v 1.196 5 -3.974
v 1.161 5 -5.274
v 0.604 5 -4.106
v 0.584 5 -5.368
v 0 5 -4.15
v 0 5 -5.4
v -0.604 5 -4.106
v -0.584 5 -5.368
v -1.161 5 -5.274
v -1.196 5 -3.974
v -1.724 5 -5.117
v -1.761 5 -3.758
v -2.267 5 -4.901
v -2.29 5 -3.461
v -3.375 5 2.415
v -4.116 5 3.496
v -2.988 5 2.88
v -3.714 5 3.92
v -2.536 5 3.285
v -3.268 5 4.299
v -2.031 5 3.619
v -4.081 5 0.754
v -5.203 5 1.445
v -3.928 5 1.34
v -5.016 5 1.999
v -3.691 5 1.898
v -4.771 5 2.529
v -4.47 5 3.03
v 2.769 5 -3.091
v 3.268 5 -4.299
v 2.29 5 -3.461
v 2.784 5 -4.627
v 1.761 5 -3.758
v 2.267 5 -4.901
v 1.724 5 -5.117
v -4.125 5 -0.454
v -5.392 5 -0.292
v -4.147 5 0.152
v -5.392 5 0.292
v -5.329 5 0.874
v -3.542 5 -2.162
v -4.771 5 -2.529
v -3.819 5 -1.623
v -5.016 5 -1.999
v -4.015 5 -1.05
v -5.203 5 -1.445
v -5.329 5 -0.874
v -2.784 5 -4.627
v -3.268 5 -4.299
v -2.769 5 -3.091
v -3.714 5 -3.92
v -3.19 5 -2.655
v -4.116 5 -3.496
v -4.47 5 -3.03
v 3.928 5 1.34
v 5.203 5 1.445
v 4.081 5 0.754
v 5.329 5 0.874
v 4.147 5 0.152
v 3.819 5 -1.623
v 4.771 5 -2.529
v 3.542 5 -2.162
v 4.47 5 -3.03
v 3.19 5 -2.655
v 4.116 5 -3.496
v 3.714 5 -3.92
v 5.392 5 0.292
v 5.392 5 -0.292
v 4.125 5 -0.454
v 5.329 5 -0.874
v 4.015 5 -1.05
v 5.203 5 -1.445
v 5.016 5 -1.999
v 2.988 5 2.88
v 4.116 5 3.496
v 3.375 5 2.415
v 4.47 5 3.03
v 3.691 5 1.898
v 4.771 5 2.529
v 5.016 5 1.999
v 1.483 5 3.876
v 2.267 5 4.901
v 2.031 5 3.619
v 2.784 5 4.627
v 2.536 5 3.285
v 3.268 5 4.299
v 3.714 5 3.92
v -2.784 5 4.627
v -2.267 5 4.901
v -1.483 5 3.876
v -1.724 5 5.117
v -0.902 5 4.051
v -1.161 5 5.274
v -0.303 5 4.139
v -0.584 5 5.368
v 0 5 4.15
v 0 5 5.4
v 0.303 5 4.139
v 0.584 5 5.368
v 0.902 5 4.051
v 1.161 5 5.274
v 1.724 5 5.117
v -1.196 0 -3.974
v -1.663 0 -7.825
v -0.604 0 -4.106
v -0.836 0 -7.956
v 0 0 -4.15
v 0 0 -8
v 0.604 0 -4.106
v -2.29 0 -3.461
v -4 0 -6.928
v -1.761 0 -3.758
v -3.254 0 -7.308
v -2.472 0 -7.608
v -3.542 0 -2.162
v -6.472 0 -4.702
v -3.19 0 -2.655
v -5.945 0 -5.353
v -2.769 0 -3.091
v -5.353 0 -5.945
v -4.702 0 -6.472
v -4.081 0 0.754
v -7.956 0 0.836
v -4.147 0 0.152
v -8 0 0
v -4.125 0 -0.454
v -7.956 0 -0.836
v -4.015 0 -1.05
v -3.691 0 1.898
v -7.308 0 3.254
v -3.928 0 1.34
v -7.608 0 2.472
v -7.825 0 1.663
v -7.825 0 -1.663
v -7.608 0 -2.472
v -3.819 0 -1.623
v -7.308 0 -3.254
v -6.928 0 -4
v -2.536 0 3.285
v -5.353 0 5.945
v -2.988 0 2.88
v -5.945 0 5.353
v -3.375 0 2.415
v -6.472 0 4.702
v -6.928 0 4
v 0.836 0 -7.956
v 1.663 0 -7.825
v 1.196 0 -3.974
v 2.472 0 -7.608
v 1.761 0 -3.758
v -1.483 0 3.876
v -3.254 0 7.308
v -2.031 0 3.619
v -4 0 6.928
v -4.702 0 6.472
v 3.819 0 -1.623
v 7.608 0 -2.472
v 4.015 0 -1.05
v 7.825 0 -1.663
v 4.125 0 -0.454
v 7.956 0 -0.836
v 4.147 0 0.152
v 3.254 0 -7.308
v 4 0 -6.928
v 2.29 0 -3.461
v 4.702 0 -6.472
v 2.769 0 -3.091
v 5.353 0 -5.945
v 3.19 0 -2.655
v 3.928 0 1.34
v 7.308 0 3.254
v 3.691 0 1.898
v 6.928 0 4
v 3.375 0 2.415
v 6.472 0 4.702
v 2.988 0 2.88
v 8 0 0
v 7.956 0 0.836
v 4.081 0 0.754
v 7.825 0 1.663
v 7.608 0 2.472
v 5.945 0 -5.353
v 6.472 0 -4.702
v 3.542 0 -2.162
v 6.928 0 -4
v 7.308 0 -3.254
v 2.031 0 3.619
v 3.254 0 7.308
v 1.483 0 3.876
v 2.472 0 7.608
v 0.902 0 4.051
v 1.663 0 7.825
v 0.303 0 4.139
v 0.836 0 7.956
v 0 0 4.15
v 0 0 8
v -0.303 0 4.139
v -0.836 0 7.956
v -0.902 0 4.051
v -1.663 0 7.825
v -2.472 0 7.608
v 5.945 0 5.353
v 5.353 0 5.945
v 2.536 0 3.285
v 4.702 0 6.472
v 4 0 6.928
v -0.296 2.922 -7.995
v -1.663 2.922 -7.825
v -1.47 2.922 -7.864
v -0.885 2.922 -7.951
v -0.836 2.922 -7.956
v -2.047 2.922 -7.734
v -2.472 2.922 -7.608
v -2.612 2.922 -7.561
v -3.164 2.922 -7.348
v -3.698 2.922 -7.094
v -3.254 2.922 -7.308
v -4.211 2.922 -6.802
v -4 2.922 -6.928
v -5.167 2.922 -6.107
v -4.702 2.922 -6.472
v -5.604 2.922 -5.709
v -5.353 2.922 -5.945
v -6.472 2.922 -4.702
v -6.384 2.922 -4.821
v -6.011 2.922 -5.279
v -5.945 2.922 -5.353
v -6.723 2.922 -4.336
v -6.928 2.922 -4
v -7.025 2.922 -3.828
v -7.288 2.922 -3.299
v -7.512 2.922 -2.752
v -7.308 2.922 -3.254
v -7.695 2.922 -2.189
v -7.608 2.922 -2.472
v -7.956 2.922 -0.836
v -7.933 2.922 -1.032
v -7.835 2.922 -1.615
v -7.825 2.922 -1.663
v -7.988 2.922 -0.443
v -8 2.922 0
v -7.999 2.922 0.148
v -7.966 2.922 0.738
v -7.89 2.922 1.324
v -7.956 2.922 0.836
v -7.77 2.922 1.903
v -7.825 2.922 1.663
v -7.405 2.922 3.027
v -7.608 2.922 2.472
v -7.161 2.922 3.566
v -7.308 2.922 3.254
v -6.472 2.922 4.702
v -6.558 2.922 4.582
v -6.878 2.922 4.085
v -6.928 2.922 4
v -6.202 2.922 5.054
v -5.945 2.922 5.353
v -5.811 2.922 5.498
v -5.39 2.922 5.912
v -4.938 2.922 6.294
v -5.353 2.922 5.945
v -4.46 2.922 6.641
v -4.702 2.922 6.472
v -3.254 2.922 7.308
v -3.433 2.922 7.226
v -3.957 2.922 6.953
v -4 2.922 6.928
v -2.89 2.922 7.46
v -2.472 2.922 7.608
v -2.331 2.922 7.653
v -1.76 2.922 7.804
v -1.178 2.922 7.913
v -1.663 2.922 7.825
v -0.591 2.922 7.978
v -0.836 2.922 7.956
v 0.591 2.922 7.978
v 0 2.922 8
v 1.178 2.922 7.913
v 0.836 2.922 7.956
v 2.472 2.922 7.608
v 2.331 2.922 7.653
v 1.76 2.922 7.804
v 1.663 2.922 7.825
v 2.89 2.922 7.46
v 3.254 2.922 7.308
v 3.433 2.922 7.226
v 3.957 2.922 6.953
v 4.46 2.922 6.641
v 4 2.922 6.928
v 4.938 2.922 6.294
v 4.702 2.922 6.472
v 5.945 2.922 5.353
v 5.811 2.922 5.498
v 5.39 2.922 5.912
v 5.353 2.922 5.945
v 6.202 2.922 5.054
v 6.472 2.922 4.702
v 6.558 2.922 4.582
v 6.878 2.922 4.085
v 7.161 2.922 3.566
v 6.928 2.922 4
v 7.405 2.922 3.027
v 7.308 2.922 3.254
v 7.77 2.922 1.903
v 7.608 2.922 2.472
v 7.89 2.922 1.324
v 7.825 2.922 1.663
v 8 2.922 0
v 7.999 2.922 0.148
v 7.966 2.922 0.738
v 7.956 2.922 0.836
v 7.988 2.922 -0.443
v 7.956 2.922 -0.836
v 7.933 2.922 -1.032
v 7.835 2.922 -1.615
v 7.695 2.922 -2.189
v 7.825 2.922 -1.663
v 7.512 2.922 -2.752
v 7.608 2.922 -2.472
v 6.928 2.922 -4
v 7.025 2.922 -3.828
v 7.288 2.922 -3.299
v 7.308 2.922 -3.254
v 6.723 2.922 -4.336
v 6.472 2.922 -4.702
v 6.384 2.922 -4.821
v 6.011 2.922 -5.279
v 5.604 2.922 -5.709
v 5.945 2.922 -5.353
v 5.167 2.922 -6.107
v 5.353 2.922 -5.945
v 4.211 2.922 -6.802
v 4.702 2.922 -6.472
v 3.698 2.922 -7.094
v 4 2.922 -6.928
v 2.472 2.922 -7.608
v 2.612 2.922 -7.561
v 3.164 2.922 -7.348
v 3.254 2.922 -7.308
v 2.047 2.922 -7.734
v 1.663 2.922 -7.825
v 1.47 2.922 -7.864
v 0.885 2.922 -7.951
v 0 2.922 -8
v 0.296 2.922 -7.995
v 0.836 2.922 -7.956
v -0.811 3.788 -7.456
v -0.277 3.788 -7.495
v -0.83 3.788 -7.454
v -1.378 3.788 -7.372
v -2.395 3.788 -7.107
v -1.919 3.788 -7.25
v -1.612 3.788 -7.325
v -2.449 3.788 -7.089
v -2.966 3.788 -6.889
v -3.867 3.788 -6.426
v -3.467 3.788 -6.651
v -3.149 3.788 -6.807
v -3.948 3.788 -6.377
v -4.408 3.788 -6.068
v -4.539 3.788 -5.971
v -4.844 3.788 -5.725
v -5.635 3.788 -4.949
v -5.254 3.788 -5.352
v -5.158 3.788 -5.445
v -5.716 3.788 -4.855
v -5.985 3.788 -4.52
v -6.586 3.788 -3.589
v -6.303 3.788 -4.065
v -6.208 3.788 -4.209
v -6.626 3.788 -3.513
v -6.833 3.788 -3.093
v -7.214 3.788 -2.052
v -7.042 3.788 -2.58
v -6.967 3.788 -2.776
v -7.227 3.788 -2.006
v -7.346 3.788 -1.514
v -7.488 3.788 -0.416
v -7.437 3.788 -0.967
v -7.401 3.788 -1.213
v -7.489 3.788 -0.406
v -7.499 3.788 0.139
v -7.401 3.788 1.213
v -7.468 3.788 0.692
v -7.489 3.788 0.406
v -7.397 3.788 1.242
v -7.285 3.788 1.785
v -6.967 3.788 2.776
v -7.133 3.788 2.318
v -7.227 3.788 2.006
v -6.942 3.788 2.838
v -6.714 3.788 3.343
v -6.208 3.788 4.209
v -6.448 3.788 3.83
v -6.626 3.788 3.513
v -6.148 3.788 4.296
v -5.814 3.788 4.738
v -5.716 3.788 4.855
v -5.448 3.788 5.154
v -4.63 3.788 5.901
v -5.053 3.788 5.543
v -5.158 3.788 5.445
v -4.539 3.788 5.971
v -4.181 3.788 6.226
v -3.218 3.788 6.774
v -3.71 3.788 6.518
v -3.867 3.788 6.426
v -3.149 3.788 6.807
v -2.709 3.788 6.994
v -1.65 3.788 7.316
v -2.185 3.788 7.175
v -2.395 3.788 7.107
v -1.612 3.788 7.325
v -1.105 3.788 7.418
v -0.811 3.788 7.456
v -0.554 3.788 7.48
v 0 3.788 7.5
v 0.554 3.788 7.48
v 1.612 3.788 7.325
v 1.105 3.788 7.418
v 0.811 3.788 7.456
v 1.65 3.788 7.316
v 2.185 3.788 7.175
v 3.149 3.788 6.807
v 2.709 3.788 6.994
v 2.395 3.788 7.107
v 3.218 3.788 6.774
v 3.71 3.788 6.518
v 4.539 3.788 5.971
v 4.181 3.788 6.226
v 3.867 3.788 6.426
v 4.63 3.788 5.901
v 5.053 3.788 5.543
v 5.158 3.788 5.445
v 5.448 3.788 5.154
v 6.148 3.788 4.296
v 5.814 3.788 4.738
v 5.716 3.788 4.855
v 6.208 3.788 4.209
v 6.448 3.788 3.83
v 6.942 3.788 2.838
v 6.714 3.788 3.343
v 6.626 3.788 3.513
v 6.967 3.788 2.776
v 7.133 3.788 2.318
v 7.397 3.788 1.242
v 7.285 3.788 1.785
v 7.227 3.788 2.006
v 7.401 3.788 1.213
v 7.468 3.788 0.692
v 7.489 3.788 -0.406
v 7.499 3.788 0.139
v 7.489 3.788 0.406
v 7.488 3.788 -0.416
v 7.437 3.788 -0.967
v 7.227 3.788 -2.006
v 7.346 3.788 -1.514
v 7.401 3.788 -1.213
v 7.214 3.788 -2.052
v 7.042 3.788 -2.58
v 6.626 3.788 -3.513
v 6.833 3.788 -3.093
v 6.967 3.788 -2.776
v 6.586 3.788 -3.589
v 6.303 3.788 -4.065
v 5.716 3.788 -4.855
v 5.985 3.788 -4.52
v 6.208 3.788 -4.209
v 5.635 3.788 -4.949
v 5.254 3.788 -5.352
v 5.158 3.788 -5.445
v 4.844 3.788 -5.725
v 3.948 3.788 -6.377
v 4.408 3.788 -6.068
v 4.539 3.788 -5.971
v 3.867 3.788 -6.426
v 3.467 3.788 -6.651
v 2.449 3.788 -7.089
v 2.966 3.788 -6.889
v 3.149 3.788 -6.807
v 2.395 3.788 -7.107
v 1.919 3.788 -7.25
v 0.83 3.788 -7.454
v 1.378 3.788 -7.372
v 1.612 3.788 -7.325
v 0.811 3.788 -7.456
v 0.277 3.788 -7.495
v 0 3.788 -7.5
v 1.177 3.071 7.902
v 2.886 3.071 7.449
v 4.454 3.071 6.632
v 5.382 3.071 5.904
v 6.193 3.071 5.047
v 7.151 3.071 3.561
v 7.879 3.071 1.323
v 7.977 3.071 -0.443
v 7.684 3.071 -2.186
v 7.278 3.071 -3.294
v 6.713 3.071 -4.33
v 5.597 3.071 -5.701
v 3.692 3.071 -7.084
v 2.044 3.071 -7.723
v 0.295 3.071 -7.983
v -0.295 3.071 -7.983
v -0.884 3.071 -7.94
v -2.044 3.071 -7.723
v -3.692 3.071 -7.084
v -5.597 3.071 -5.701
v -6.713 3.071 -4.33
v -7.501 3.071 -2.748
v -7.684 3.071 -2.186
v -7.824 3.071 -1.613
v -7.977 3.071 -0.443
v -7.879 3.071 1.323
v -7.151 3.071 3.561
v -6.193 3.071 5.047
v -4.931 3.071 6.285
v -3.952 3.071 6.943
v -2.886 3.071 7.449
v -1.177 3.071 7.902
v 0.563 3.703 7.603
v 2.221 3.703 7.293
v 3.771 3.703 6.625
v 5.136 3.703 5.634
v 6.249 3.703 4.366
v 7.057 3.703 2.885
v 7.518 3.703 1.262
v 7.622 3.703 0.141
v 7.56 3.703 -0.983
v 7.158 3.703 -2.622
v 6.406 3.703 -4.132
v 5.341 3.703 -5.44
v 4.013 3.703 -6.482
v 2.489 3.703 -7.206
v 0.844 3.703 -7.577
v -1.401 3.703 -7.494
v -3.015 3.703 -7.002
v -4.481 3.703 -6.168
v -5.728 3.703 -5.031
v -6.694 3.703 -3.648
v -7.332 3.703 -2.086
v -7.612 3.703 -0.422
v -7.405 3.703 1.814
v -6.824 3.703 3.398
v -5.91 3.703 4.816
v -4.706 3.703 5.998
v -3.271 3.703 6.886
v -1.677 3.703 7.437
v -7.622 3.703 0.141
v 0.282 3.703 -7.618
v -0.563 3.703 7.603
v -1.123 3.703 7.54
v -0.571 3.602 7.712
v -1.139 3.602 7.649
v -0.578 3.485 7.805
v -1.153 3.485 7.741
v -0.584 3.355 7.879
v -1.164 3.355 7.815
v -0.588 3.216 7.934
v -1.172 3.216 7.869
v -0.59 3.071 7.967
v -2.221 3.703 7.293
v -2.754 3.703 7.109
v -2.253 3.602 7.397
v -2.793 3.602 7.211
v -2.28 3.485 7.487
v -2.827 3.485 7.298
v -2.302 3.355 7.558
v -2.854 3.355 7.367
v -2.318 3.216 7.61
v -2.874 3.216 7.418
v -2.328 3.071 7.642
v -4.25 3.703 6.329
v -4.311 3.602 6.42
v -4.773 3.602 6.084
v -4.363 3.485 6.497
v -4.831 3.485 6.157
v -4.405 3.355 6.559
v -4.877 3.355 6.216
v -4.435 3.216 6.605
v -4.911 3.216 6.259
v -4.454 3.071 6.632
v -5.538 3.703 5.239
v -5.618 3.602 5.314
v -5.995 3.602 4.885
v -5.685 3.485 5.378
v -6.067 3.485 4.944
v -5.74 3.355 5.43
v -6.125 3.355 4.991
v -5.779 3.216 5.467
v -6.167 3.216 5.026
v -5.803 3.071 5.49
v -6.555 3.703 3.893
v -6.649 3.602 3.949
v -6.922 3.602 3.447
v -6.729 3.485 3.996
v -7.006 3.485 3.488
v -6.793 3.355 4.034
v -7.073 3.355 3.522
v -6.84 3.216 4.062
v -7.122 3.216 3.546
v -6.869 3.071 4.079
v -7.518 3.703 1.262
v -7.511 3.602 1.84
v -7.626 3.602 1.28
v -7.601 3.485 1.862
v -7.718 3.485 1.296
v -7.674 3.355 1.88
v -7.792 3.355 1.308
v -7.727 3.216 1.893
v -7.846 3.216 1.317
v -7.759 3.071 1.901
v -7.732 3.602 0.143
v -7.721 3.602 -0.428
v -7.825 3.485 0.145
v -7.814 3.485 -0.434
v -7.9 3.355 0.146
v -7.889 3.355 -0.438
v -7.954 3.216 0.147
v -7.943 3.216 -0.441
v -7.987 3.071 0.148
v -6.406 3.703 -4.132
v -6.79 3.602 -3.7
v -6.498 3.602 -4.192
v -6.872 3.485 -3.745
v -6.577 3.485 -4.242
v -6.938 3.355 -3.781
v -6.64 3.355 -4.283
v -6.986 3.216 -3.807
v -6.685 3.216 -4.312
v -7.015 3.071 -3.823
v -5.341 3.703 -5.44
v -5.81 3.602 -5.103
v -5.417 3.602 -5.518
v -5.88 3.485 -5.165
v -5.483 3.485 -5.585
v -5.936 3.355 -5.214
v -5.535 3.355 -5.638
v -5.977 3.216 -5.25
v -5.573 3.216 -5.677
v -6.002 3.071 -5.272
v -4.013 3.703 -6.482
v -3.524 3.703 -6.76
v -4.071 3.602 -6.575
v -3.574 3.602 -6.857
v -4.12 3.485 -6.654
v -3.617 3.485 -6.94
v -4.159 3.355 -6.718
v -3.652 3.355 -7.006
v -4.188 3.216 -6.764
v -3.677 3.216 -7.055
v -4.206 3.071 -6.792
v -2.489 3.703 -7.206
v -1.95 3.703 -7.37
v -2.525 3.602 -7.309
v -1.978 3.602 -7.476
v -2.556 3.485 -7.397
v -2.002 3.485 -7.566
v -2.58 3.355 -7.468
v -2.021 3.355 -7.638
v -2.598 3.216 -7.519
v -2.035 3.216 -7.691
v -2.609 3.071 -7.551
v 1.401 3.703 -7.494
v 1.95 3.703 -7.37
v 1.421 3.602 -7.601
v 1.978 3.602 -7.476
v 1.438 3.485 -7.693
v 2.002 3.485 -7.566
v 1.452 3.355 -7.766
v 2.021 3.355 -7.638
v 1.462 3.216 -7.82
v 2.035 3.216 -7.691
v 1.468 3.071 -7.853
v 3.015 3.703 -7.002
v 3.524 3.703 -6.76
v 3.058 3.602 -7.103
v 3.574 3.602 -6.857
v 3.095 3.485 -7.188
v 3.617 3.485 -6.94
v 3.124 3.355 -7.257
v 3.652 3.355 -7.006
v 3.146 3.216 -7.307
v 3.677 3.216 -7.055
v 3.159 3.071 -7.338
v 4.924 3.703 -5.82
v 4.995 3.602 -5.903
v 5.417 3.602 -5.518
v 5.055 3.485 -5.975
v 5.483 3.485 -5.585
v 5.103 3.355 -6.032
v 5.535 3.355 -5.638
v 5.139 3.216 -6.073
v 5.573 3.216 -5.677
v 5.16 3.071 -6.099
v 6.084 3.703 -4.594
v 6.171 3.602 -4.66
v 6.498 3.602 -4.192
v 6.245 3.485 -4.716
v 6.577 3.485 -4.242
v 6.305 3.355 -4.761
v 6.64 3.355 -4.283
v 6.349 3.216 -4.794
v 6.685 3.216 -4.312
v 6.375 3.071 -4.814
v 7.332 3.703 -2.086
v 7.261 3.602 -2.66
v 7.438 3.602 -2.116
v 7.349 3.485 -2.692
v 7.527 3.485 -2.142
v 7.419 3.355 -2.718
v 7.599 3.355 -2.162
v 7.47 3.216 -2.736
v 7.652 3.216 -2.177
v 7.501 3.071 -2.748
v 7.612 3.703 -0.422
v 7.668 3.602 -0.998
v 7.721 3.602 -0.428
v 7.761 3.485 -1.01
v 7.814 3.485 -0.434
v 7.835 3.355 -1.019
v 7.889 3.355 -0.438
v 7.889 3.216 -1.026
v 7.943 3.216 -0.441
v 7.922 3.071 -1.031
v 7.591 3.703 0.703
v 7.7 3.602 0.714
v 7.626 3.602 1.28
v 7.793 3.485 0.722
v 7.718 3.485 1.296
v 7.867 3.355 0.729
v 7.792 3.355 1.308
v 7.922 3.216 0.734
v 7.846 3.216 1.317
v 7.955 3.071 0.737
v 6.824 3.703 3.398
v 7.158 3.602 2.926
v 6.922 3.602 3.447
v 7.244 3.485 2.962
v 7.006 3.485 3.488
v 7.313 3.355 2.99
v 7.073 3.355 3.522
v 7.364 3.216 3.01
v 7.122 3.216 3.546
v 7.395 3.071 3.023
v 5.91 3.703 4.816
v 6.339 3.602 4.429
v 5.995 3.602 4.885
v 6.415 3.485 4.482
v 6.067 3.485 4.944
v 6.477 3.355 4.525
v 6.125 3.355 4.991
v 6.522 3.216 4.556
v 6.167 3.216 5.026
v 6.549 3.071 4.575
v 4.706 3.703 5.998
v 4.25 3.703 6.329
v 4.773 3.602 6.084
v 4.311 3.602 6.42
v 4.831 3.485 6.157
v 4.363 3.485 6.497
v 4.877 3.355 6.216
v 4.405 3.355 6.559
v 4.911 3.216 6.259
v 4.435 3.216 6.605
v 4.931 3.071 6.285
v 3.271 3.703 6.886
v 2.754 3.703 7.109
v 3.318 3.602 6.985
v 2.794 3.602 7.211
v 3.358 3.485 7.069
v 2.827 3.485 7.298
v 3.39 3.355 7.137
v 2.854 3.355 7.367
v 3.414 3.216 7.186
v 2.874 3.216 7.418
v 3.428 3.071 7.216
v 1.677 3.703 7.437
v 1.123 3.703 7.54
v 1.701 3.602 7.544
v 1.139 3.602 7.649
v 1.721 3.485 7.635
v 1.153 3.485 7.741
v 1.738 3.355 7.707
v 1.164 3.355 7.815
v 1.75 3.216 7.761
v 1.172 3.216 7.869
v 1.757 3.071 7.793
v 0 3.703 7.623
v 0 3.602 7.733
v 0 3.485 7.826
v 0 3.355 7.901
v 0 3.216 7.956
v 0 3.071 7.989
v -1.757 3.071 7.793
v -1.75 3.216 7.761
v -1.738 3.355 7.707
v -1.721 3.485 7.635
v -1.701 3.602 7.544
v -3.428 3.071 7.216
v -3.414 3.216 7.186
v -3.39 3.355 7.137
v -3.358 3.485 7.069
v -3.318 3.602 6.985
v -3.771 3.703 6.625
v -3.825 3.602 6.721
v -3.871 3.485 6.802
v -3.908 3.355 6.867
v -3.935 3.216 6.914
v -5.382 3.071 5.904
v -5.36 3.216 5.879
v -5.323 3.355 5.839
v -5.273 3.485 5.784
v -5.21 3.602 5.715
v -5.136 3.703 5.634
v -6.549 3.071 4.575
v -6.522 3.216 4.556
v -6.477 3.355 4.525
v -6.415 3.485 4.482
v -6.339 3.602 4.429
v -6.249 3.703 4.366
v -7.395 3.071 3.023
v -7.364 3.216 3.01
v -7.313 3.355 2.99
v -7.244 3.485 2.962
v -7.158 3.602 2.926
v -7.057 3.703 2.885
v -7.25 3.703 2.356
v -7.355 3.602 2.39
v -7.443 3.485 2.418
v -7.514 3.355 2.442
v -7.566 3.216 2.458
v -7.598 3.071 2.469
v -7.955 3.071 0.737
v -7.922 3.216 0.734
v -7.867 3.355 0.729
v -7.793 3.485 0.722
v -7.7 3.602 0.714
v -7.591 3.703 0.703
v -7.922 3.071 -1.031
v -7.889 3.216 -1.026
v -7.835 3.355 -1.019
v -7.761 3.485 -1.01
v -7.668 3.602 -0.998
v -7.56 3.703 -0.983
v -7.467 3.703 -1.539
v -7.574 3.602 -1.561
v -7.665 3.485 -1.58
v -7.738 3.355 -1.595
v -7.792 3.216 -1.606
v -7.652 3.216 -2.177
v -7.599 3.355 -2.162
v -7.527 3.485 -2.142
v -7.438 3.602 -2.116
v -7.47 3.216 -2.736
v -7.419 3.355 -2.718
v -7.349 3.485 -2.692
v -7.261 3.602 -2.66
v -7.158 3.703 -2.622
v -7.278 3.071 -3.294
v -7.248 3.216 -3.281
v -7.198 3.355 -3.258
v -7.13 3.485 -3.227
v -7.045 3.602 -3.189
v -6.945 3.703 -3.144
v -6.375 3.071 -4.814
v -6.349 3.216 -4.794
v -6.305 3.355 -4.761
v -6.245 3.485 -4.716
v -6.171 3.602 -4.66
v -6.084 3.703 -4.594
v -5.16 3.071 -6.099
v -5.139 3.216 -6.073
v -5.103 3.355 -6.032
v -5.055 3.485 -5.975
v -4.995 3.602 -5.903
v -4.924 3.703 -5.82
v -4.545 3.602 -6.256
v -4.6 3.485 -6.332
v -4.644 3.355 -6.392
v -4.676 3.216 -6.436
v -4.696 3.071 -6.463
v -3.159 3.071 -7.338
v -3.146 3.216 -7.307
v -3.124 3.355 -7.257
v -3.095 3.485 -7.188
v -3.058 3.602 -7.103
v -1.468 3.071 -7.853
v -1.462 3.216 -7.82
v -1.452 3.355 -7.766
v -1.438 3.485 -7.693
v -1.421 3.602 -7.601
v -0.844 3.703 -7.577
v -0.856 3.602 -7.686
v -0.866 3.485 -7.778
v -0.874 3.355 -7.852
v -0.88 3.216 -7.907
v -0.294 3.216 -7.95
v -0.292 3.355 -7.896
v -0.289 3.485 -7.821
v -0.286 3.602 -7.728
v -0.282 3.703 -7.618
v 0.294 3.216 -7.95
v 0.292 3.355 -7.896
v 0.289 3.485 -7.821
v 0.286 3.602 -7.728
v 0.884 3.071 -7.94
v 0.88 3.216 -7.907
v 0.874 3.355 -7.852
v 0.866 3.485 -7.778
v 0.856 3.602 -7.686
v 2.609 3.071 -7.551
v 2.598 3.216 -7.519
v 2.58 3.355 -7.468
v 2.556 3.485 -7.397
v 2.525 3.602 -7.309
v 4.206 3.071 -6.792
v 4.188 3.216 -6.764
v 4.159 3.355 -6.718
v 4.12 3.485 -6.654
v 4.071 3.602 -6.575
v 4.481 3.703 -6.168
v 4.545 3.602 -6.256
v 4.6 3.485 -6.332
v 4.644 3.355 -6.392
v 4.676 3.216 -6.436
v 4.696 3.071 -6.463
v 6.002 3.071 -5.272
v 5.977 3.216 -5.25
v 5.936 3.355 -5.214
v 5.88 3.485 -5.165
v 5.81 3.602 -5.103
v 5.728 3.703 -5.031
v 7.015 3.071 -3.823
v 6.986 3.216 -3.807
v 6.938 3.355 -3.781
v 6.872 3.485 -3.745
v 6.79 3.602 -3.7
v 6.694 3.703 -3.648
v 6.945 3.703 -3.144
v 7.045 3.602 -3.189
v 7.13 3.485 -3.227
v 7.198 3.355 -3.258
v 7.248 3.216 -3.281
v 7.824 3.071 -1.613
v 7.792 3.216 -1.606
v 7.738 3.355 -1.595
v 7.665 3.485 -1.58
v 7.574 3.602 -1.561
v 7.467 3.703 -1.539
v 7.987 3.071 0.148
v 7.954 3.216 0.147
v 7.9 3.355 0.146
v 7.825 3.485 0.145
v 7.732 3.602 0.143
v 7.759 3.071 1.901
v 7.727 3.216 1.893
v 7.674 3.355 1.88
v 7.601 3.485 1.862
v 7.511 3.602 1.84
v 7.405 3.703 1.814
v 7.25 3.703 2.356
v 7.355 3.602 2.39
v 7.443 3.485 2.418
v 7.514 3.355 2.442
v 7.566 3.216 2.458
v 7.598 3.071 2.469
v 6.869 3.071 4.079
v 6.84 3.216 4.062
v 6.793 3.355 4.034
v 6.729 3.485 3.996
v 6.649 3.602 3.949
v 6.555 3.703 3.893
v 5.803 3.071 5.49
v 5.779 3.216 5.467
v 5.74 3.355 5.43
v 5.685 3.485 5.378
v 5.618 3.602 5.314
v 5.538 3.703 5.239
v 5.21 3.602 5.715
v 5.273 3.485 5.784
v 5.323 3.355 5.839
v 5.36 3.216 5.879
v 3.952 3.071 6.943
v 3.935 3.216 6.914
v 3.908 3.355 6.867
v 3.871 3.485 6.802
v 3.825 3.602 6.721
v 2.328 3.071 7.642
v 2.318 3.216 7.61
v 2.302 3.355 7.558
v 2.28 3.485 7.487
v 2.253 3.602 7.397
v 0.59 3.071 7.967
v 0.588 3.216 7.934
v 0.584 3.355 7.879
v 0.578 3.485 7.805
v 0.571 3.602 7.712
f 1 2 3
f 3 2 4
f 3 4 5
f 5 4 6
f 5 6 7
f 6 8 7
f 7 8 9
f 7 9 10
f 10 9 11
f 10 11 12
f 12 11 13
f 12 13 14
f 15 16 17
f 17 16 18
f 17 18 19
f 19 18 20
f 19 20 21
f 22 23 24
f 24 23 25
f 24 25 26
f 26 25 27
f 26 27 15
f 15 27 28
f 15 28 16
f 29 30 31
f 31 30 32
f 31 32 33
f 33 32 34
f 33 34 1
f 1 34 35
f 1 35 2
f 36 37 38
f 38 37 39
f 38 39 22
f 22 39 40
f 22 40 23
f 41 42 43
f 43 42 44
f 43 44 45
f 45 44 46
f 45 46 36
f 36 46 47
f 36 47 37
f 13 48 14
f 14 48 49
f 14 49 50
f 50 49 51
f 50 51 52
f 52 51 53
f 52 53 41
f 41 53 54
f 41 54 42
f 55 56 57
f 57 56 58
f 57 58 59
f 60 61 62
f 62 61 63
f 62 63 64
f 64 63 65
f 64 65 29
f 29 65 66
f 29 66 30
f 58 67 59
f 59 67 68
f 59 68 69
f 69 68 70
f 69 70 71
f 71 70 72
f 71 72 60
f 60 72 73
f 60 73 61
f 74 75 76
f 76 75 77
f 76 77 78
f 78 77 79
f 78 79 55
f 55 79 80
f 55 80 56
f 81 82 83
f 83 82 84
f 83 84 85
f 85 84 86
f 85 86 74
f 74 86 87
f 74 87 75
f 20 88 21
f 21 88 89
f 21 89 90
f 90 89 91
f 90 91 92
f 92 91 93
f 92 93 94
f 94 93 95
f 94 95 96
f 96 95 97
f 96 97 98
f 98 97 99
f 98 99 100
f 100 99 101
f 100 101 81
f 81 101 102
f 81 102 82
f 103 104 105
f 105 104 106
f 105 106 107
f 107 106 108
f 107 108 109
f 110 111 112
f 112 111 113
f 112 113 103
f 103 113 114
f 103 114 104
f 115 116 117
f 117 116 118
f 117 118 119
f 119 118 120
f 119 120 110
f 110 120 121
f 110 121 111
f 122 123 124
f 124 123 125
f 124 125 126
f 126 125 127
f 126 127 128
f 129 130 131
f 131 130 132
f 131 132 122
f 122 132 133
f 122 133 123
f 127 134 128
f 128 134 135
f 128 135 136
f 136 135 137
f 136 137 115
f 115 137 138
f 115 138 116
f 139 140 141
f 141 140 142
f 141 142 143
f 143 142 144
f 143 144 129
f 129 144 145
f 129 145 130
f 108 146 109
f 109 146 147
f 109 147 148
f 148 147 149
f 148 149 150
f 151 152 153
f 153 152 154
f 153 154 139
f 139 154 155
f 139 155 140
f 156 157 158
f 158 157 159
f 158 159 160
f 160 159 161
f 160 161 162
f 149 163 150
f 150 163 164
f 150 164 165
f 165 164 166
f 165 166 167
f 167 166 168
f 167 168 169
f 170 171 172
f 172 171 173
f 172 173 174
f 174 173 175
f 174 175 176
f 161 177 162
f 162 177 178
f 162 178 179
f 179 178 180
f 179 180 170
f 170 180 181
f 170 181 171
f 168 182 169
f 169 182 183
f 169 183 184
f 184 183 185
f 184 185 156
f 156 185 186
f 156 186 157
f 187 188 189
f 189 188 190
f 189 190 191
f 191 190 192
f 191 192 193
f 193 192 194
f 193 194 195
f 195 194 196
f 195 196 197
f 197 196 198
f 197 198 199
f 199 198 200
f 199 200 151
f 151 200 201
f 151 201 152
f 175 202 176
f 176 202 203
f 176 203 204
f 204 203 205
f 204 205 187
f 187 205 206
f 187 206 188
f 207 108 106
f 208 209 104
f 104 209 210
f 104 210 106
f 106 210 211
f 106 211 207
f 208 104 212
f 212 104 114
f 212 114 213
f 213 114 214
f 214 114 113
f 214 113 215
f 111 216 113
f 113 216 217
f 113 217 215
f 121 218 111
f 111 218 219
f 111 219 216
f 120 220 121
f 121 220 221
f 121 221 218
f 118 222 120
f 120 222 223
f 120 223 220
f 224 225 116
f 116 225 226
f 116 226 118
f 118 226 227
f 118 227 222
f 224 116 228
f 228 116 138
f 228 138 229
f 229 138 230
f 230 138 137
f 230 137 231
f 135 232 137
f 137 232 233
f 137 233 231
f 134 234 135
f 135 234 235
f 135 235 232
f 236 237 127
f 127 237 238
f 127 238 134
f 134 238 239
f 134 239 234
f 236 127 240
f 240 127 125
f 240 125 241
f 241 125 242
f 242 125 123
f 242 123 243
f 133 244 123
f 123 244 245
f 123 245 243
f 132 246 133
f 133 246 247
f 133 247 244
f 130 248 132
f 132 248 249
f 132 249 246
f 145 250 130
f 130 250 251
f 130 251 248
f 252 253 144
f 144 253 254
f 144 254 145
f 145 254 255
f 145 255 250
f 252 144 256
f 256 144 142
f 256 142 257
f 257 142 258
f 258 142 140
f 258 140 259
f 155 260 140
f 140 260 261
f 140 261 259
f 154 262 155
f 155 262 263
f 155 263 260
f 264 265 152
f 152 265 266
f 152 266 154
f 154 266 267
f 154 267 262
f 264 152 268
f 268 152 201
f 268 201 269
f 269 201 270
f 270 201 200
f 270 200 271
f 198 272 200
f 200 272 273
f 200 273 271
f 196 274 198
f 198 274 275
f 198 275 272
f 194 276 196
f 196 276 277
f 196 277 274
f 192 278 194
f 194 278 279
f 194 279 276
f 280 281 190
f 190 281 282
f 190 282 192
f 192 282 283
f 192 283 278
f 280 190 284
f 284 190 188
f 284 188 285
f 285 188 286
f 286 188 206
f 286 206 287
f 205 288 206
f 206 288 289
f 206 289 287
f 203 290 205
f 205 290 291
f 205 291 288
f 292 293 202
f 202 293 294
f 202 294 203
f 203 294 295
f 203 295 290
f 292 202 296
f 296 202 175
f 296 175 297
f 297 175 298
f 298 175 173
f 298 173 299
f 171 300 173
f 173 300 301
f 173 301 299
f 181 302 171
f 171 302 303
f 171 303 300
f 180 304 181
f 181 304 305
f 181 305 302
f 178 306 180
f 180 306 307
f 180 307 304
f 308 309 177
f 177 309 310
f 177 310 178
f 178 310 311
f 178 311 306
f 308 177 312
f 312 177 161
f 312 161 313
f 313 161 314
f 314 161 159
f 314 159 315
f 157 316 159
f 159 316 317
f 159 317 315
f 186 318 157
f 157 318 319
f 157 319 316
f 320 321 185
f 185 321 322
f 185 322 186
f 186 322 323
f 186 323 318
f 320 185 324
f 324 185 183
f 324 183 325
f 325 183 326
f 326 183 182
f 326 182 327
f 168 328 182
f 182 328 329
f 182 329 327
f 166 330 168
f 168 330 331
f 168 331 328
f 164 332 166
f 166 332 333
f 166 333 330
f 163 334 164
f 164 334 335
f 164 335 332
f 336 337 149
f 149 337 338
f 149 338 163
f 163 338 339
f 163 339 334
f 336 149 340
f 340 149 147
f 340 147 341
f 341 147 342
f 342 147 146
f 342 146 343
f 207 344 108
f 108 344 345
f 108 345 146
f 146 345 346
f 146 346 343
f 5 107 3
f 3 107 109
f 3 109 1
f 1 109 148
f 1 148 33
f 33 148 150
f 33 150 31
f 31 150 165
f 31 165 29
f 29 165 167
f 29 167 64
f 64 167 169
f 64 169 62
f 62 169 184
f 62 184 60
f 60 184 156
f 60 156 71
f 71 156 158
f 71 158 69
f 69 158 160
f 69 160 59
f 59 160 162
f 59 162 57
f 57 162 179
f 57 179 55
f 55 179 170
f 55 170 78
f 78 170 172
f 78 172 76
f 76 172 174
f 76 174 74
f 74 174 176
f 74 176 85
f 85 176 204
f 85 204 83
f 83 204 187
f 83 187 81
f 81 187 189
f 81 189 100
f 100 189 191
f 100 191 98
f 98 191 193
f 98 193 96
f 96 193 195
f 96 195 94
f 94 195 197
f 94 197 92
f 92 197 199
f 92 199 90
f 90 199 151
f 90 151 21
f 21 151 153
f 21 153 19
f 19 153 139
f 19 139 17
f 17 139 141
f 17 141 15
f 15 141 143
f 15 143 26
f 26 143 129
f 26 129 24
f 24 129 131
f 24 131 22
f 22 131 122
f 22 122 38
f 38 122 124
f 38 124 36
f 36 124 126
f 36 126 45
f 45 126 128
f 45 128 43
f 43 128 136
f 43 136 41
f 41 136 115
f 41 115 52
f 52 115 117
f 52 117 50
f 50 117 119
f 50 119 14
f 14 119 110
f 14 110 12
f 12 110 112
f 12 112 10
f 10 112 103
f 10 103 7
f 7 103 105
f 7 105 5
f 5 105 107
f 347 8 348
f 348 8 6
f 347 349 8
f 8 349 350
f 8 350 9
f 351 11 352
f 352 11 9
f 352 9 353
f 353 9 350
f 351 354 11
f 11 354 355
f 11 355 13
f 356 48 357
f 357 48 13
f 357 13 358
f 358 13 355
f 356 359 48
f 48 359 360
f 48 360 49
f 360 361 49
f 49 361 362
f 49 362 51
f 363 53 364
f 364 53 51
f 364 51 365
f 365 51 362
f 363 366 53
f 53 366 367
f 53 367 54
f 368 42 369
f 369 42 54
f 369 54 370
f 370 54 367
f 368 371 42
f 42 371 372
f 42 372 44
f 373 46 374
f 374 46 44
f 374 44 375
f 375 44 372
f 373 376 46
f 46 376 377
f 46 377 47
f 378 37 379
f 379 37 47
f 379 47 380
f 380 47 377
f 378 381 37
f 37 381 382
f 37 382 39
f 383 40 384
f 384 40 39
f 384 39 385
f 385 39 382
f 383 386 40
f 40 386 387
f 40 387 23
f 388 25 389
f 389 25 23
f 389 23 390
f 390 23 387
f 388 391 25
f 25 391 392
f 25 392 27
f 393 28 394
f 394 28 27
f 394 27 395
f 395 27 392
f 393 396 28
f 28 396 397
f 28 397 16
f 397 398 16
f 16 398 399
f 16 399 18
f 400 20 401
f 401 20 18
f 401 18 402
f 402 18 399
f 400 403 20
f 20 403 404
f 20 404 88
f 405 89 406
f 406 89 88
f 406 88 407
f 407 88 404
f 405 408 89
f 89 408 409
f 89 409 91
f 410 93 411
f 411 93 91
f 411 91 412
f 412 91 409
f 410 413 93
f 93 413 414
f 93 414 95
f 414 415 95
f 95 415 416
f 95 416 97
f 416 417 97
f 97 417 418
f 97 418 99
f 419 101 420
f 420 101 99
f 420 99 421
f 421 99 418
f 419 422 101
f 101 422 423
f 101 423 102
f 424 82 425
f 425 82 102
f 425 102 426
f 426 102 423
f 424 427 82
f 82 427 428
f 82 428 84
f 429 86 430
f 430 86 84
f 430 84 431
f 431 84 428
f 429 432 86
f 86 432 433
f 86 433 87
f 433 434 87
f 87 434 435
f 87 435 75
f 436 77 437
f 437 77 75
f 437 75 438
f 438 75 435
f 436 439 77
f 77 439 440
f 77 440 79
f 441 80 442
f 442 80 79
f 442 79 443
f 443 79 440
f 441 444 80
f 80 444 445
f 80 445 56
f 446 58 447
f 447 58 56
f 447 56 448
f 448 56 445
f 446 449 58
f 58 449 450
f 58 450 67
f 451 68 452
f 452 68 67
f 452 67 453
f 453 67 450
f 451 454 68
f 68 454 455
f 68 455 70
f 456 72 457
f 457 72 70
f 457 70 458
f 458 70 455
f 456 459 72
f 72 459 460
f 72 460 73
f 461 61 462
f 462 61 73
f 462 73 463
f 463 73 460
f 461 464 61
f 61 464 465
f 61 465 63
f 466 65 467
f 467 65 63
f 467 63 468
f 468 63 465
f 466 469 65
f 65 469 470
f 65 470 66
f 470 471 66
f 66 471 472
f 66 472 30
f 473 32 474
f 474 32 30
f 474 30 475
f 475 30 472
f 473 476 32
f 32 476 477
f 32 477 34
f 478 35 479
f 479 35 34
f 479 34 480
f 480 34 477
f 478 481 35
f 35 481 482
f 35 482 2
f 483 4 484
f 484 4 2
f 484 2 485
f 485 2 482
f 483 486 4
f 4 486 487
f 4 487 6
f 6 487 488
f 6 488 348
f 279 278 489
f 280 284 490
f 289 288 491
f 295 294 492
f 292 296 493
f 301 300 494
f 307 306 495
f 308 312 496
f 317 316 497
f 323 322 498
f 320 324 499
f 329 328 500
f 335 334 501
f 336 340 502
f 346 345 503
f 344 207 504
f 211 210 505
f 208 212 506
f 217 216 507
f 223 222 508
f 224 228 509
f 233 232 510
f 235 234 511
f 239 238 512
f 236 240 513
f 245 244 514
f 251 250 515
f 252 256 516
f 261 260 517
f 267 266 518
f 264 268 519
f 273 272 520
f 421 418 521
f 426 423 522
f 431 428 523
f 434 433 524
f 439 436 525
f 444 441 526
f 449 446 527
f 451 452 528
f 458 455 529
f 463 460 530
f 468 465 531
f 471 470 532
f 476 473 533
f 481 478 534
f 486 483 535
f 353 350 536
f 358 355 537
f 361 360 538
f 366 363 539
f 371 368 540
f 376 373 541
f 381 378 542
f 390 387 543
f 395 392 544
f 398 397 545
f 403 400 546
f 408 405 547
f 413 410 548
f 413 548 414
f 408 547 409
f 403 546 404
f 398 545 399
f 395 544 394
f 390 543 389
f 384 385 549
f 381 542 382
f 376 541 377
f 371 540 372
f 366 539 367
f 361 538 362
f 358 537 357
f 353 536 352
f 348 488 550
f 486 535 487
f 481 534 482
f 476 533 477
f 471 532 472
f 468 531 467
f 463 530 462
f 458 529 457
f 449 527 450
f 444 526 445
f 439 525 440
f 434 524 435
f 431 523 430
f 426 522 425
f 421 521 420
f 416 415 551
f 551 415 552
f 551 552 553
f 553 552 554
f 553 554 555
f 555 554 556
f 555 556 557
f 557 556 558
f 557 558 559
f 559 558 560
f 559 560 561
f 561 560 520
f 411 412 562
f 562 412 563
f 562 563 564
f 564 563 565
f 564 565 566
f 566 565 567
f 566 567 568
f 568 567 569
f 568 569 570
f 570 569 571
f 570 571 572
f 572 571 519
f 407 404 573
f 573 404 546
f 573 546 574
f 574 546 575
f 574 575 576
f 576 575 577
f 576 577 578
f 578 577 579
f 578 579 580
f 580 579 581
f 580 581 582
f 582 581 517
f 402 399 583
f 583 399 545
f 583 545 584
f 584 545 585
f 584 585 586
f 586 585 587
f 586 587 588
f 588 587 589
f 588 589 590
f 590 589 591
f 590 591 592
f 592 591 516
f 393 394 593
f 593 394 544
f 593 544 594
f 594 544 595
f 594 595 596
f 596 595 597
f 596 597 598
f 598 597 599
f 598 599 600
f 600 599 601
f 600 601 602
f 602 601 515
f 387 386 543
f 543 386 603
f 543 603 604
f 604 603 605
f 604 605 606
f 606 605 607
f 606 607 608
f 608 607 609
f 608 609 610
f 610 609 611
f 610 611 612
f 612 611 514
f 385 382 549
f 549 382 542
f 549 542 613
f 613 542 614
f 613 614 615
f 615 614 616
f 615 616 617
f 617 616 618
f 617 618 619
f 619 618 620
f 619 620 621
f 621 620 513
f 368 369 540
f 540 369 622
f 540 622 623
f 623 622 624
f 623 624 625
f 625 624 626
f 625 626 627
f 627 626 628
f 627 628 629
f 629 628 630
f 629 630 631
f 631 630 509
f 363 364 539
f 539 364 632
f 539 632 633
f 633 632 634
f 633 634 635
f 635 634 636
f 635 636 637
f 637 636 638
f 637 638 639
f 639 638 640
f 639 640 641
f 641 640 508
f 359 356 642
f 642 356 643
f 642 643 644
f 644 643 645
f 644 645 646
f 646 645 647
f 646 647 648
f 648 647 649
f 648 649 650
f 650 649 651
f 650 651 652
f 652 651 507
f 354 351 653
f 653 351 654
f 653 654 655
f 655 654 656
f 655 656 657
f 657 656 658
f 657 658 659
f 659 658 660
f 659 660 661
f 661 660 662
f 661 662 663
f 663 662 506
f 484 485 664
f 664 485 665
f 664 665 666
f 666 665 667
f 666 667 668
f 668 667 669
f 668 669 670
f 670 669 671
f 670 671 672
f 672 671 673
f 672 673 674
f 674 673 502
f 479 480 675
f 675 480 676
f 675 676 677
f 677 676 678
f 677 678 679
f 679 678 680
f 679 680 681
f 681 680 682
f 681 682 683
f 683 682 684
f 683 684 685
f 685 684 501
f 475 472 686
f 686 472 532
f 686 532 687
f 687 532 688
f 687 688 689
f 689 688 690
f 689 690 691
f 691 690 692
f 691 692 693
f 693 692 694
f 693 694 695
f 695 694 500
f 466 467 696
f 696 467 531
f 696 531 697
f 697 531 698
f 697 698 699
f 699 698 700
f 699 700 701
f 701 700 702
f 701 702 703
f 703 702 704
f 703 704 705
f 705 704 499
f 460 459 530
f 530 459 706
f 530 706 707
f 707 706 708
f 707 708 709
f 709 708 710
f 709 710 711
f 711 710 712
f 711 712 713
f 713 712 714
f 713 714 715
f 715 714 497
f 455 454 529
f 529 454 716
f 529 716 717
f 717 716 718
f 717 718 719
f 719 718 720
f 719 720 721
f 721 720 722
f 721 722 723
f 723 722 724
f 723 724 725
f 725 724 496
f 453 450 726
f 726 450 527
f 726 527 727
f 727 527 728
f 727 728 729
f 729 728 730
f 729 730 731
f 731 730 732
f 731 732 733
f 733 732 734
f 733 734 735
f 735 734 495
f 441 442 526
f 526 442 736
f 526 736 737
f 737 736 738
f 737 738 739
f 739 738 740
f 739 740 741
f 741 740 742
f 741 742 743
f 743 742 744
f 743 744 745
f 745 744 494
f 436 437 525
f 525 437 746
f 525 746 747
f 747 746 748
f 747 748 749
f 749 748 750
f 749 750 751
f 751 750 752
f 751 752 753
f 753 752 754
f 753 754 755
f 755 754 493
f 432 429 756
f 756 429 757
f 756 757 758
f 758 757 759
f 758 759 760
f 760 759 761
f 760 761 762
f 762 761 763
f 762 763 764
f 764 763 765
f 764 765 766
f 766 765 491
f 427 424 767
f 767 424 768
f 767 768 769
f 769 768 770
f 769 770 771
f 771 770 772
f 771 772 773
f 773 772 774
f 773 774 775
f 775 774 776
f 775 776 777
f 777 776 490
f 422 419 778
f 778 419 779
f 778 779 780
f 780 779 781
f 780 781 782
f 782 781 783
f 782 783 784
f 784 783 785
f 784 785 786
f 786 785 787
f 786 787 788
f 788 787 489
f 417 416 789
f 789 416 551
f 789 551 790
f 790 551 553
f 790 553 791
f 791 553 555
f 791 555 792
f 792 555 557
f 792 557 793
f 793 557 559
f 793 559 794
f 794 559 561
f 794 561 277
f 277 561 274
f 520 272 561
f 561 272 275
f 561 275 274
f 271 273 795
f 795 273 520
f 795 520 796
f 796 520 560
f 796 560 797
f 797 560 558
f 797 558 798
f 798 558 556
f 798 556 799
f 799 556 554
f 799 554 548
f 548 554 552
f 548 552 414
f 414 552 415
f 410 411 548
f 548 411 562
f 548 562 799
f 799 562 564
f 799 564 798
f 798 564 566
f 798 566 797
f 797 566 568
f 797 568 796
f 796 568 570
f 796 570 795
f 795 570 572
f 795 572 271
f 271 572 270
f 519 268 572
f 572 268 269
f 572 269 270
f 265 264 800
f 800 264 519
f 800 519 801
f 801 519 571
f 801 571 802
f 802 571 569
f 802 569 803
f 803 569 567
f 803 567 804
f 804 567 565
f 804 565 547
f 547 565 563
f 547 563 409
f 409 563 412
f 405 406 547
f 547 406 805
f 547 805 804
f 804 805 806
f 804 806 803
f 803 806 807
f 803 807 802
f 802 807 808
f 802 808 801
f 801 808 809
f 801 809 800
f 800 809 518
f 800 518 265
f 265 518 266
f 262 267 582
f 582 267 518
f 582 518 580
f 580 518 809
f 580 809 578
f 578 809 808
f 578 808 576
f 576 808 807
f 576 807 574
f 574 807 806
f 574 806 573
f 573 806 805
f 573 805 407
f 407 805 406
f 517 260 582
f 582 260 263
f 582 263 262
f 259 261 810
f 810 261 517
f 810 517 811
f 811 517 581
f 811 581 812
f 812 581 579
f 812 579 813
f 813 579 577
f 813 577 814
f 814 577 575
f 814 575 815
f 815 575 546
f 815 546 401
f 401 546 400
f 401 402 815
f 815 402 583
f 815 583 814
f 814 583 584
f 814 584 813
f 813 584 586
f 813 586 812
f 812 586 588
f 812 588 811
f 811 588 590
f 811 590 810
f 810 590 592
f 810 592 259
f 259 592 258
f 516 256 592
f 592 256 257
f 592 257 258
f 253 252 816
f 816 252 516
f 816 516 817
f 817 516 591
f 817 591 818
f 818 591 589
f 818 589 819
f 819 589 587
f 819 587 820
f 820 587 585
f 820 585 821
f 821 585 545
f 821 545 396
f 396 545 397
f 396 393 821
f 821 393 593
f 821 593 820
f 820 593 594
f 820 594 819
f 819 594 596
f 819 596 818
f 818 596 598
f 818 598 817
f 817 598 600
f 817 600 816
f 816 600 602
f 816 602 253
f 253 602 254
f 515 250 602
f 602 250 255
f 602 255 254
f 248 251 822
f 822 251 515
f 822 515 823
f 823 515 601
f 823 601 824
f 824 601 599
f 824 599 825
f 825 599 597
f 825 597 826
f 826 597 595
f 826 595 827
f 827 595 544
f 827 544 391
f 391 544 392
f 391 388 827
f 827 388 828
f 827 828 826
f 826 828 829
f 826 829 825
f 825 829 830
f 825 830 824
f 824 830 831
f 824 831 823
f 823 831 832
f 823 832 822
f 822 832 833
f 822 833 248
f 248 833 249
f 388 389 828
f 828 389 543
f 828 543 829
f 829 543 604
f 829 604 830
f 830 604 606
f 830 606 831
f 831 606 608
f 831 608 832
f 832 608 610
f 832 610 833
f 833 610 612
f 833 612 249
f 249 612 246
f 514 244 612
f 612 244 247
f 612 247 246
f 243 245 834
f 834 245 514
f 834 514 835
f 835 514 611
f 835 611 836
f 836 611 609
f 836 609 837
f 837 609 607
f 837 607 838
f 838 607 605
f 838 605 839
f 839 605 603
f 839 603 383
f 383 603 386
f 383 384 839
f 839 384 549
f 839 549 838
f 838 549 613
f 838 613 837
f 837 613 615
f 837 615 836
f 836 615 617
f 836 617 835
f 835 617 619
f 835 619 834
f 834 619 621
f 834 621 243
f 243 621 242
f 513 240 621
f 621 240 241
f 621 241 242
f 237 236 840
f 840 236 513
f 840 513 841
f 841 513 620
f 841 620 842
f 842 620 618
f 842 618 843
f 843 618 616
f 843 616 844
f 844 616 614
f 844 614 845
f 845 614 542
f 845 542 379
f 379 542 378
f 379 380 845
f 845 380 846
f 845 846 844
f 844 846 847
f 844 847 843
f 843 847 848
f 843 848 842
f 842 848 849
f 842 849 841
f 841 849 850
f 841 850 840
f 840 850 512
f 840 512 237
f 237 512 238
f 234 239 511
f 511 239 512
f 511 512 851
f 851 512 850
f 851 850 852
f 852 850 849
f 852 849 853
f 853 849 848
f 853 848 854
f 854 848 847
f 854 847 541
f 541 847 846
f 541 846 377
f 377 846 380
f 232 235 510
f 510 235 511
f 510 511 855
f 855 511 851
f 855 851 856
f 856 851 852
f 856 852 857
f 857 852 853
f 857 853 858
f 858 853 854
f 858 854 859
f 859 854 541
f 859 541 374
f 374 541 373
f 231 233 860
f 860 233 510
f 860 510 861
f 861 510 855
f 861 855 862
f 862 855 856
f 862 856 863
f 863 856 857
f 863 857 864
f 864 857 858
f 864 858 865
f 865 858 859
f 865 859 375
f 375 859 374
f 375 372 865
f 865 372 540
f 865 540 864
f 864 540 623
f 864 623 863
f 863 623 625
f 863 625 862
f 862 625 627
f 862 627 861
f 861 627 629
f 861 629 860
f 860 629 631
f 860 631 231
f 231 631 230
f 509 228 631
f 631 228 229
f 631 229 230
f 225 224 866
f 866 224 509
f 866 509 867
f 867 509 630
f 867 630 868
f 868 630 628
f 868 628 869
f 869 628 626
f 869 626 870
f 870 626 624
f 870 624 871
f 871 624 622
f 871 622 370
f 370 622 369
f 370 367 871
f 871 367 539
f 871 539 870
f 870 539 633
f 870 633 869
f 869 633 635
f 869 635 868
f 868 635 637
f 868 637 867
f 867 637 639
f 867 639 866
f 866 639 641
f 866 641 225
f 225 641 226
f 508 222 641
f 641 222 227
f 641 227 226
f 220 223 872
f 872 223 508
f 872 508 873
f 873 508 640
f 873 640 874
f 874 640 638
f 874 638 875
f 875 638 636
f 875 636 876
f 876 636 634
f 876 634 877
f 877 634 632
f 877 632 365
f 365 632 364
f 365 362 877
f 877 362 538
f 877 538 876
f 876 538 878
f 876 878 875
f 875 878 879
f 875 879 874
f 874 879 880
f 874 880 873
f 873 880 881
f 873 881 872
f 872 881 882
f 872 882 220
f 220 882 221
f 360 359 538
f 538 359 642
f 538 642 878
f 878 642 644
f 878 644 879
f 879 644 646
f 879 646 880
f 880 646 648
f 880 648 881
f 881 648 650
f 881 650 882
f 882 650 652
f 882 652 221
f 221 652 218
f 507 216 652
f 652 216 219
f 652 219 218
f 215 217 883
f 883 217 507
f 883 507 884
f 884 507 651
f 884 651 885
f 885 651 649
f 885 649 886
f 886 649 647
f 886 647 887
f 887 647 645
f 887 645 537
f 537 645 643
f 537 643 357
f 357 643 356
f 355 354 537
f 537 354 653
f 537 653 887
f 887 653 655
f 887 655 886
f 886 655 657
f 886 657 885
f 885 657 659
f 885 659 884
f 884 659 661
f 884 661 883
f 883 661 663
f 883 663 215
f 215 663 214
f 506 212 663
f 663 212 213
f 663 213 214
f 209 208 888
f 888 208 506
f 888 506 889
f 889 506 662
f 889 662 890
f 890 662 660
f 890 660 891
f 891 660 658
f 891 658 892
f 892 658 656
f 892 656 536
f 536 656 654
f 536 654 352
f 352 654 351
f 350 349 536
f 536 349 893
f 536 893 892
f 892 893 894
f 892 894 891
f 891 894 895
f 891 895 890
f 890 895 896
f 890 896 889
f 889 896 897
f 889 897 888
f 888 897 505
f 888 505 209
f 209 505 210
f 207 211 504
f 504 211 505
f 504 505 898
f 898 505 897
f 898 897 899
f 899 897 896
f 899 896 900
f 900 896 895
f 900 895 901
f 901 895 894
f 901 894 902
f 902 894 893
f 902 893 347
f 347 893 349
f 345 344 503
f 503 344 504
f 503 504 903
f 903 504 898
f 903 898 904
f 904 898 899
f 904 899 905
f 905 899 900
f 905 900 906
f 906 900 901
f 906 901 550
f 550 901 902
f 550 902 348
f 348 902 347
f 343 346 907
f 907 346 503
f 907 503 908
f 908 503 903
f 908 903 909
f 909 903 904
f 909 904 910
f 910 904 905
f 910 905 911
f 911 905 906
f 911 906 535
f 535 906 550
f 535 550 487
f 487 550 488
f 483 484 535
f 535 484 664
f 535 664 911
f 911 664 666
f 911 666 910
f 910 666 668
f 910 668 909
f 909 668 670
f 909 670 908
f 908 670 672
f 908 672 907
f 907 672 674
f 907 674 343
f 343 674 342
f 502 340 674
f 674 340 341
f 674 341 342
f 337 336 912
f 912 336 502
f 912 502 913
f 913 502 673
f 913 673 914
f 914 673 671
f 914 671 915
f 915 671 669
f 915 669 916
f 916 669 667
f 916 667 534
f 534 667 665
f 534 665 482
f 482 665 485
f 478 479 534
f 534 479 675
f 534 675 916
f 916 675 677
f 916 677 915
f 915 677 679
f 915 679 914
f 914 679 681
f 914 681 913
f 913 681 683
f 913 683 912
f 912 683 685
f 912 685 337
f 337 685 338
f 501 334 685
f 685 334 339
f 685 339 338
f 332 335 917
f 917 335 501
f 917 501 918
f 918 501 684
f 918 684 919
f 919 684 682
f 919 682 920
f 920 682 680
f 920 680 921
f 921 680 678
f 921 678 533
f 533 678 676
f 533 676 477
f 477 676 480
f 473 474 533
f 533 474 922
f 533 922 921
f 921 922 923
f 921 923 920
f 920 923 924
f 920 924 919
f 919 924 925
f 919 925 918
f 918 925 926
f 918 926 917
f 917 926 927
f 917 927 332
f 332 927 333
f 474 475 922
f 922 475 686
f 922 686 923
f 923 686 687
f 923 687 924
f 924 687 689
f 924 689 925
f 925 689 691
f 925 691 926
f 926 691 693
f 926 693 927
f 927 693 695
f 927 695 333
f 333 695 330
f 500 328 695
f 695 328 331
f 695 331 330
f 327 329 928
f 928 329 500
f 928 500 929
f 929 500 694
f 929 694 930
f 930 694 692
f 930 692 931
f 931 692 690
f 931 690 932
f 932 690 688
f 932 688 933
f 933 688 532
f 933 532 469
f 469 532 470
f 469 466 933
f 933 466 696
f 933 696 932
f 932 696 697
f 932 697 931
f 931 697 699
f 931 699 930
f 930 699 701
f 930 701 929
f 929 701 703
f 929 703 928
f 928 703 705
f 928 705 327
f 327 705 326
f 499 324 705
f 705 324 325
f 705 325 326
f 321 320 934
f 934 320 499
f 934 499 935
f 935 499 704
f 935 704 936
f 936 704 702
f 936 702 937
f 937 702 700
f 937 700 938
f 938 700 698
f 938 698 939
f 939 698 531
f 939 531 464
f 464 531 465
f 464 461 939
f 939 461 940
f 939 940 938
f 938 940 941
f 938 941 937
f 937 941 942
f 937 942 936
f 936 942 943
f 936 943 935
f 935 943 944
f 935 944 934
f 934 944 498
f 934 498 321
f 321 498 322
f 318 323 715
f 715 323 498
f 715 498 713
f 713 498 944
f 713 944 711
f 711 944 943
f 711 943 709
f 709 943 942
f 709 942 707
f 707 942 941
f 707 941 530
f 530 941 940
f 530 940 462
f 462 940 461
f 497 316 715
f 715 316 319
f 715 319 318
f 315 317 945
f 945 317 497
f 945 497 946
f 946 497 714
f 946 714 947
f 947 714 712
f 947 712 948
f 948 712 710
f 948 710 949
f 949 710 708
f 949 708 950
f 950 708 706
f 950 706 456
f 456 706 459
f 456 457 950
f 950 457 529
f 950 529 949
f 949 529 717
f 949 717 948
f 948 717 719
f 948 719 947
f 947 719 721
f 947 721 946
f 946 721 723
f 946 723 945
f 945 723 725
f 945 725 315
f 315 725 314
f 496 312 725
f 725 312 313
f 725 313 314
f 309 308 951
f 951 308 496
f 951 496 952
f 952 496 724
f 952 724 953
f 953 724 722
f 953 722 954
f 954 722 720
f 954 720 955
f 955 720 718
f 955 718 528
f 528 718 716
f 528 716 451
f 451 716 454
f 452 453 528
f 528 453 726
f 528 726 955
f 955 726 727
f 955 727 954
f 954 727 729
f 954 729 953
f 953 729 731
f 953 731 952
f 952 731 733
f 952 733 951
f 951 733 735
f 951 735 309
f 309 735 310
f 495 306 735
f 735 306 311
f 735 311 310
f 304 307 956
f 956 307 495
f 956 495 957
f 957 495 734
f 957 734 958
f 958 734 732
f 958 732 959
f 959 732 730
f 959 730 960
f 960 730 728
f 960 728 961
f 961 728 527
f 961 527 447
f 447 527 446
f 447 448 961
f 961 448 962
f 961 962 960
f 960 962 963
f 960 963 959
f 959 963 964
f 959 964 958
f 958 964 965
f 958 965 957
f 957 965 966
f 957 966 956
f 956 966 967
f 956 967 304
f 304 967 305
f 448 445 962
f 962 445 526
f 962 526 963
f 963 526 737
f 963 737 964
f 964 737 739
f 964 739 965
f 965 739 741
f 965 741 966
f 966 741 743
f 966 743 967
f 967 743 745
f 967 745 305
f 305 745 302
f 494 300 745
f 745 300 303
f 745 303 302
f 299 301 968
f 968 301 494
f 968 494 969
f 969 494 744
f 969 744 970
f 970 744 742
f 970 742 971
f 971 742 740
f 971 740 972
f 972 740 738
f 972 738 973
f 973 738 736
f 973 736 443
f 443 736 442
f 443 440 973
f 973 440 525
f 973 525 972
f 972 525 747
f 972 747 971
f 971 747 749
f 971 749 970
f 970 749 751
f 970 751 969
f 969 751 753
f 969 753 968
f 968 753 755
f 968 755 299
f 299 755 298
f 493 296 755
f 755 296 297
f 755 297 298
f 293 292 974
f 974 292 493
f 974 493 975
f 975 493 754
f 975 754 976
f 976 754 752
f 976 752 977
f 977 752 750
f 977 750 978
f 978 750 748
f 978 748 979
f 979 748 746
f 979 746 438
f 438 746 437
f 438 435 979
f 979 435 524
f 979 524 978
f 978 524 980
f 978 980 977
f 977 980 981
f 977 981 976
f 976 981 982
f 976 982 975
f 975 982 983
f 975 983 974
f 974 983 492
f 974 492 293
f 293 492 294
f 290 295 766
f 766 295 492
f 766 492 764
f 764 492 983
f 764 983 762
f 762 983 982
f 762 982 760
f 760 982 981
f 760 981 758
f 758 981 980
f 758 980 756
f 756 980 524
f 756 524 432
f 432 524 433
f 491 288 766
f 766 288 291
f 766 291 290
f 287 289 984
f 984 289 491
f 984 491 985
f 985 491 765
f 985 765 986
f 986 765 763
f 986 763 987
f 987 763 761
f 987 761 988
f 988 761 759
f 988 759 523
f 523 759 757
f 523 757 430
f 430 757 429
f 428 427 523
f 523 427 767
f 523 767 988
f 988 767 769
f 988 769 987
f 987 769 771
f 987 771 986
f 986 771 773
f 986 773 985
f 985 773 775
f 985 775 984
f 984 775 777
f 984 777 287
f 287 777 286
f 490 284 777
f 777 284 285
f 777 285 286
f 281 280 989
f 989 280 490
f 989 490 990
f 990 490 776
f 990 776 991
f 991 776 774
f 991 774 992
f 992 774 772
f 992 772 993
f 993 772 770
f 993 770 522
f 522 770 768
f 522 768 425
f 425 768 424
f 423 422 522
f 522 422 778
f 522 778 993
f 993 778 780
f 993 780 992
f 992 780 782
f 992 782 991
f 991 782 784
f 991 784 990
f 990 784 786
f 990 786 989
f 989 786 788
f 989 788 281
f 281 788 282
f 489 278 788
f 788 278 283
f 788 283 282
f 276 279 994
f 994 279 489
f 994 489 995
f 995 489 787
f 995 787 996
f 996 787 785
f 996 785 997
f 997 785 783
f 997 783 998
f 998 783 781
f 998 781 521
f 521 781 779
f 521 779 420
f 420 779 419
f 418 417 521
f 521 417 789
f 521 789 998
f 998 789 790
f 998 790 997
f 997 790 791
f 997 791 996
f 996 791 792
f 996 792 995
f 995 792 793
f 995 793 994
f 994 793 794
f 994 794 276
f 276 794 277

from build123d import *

# Parameters (mm, degrees)
SKETCH1_R           = 8
SKETCH1_R_2         = 4.15
BOSS_EXTRUDE1_DEPTH = 5
CHAMFER1_SIZE       = 2.6
CHAMFER1_SIZE2      = 1.5011107
FILLET1_R           = 1


with BuildPart() as part:
    # Sketch1 → Boss-Extrude1 (new body)
    with BuildSketch(Plane(origin=(0, 0, 0), x_dir=(1, 0, 0), z_dir=(0, 1, 0))):
        Circle(SKETCH1_R)
        Circle(SKETCH1_R_2, mode=Mode.SUBTRACT)
    extrude(amount=BOSS_EXTRUDE1_DEPTH)

    # Chamfer1
    chamfer1_edges = [part.edges().sort_by_distance(p)[0] for p in [
        (-8, 5, 0),
    ]]
    chamfer1_side = [part.faces().sort_by_distance(p)[0] for p in [
        (-7.77372583, 5, 0),
    ]]
    chamfer(chamfer1_edges, length=CHAMFER1_SIZE, length2=CHAMFER1_SIZE2, reference=chamfer1_side[0])

    # Fillet1
    fillet1_edges = [part.edges().sort_by_distance(p)[0] for p in [
        (-8, 3.4988893, 0),
    ]]
    fillet(fillet1_edges, radius=FILLET1_R)


solid = part.part
